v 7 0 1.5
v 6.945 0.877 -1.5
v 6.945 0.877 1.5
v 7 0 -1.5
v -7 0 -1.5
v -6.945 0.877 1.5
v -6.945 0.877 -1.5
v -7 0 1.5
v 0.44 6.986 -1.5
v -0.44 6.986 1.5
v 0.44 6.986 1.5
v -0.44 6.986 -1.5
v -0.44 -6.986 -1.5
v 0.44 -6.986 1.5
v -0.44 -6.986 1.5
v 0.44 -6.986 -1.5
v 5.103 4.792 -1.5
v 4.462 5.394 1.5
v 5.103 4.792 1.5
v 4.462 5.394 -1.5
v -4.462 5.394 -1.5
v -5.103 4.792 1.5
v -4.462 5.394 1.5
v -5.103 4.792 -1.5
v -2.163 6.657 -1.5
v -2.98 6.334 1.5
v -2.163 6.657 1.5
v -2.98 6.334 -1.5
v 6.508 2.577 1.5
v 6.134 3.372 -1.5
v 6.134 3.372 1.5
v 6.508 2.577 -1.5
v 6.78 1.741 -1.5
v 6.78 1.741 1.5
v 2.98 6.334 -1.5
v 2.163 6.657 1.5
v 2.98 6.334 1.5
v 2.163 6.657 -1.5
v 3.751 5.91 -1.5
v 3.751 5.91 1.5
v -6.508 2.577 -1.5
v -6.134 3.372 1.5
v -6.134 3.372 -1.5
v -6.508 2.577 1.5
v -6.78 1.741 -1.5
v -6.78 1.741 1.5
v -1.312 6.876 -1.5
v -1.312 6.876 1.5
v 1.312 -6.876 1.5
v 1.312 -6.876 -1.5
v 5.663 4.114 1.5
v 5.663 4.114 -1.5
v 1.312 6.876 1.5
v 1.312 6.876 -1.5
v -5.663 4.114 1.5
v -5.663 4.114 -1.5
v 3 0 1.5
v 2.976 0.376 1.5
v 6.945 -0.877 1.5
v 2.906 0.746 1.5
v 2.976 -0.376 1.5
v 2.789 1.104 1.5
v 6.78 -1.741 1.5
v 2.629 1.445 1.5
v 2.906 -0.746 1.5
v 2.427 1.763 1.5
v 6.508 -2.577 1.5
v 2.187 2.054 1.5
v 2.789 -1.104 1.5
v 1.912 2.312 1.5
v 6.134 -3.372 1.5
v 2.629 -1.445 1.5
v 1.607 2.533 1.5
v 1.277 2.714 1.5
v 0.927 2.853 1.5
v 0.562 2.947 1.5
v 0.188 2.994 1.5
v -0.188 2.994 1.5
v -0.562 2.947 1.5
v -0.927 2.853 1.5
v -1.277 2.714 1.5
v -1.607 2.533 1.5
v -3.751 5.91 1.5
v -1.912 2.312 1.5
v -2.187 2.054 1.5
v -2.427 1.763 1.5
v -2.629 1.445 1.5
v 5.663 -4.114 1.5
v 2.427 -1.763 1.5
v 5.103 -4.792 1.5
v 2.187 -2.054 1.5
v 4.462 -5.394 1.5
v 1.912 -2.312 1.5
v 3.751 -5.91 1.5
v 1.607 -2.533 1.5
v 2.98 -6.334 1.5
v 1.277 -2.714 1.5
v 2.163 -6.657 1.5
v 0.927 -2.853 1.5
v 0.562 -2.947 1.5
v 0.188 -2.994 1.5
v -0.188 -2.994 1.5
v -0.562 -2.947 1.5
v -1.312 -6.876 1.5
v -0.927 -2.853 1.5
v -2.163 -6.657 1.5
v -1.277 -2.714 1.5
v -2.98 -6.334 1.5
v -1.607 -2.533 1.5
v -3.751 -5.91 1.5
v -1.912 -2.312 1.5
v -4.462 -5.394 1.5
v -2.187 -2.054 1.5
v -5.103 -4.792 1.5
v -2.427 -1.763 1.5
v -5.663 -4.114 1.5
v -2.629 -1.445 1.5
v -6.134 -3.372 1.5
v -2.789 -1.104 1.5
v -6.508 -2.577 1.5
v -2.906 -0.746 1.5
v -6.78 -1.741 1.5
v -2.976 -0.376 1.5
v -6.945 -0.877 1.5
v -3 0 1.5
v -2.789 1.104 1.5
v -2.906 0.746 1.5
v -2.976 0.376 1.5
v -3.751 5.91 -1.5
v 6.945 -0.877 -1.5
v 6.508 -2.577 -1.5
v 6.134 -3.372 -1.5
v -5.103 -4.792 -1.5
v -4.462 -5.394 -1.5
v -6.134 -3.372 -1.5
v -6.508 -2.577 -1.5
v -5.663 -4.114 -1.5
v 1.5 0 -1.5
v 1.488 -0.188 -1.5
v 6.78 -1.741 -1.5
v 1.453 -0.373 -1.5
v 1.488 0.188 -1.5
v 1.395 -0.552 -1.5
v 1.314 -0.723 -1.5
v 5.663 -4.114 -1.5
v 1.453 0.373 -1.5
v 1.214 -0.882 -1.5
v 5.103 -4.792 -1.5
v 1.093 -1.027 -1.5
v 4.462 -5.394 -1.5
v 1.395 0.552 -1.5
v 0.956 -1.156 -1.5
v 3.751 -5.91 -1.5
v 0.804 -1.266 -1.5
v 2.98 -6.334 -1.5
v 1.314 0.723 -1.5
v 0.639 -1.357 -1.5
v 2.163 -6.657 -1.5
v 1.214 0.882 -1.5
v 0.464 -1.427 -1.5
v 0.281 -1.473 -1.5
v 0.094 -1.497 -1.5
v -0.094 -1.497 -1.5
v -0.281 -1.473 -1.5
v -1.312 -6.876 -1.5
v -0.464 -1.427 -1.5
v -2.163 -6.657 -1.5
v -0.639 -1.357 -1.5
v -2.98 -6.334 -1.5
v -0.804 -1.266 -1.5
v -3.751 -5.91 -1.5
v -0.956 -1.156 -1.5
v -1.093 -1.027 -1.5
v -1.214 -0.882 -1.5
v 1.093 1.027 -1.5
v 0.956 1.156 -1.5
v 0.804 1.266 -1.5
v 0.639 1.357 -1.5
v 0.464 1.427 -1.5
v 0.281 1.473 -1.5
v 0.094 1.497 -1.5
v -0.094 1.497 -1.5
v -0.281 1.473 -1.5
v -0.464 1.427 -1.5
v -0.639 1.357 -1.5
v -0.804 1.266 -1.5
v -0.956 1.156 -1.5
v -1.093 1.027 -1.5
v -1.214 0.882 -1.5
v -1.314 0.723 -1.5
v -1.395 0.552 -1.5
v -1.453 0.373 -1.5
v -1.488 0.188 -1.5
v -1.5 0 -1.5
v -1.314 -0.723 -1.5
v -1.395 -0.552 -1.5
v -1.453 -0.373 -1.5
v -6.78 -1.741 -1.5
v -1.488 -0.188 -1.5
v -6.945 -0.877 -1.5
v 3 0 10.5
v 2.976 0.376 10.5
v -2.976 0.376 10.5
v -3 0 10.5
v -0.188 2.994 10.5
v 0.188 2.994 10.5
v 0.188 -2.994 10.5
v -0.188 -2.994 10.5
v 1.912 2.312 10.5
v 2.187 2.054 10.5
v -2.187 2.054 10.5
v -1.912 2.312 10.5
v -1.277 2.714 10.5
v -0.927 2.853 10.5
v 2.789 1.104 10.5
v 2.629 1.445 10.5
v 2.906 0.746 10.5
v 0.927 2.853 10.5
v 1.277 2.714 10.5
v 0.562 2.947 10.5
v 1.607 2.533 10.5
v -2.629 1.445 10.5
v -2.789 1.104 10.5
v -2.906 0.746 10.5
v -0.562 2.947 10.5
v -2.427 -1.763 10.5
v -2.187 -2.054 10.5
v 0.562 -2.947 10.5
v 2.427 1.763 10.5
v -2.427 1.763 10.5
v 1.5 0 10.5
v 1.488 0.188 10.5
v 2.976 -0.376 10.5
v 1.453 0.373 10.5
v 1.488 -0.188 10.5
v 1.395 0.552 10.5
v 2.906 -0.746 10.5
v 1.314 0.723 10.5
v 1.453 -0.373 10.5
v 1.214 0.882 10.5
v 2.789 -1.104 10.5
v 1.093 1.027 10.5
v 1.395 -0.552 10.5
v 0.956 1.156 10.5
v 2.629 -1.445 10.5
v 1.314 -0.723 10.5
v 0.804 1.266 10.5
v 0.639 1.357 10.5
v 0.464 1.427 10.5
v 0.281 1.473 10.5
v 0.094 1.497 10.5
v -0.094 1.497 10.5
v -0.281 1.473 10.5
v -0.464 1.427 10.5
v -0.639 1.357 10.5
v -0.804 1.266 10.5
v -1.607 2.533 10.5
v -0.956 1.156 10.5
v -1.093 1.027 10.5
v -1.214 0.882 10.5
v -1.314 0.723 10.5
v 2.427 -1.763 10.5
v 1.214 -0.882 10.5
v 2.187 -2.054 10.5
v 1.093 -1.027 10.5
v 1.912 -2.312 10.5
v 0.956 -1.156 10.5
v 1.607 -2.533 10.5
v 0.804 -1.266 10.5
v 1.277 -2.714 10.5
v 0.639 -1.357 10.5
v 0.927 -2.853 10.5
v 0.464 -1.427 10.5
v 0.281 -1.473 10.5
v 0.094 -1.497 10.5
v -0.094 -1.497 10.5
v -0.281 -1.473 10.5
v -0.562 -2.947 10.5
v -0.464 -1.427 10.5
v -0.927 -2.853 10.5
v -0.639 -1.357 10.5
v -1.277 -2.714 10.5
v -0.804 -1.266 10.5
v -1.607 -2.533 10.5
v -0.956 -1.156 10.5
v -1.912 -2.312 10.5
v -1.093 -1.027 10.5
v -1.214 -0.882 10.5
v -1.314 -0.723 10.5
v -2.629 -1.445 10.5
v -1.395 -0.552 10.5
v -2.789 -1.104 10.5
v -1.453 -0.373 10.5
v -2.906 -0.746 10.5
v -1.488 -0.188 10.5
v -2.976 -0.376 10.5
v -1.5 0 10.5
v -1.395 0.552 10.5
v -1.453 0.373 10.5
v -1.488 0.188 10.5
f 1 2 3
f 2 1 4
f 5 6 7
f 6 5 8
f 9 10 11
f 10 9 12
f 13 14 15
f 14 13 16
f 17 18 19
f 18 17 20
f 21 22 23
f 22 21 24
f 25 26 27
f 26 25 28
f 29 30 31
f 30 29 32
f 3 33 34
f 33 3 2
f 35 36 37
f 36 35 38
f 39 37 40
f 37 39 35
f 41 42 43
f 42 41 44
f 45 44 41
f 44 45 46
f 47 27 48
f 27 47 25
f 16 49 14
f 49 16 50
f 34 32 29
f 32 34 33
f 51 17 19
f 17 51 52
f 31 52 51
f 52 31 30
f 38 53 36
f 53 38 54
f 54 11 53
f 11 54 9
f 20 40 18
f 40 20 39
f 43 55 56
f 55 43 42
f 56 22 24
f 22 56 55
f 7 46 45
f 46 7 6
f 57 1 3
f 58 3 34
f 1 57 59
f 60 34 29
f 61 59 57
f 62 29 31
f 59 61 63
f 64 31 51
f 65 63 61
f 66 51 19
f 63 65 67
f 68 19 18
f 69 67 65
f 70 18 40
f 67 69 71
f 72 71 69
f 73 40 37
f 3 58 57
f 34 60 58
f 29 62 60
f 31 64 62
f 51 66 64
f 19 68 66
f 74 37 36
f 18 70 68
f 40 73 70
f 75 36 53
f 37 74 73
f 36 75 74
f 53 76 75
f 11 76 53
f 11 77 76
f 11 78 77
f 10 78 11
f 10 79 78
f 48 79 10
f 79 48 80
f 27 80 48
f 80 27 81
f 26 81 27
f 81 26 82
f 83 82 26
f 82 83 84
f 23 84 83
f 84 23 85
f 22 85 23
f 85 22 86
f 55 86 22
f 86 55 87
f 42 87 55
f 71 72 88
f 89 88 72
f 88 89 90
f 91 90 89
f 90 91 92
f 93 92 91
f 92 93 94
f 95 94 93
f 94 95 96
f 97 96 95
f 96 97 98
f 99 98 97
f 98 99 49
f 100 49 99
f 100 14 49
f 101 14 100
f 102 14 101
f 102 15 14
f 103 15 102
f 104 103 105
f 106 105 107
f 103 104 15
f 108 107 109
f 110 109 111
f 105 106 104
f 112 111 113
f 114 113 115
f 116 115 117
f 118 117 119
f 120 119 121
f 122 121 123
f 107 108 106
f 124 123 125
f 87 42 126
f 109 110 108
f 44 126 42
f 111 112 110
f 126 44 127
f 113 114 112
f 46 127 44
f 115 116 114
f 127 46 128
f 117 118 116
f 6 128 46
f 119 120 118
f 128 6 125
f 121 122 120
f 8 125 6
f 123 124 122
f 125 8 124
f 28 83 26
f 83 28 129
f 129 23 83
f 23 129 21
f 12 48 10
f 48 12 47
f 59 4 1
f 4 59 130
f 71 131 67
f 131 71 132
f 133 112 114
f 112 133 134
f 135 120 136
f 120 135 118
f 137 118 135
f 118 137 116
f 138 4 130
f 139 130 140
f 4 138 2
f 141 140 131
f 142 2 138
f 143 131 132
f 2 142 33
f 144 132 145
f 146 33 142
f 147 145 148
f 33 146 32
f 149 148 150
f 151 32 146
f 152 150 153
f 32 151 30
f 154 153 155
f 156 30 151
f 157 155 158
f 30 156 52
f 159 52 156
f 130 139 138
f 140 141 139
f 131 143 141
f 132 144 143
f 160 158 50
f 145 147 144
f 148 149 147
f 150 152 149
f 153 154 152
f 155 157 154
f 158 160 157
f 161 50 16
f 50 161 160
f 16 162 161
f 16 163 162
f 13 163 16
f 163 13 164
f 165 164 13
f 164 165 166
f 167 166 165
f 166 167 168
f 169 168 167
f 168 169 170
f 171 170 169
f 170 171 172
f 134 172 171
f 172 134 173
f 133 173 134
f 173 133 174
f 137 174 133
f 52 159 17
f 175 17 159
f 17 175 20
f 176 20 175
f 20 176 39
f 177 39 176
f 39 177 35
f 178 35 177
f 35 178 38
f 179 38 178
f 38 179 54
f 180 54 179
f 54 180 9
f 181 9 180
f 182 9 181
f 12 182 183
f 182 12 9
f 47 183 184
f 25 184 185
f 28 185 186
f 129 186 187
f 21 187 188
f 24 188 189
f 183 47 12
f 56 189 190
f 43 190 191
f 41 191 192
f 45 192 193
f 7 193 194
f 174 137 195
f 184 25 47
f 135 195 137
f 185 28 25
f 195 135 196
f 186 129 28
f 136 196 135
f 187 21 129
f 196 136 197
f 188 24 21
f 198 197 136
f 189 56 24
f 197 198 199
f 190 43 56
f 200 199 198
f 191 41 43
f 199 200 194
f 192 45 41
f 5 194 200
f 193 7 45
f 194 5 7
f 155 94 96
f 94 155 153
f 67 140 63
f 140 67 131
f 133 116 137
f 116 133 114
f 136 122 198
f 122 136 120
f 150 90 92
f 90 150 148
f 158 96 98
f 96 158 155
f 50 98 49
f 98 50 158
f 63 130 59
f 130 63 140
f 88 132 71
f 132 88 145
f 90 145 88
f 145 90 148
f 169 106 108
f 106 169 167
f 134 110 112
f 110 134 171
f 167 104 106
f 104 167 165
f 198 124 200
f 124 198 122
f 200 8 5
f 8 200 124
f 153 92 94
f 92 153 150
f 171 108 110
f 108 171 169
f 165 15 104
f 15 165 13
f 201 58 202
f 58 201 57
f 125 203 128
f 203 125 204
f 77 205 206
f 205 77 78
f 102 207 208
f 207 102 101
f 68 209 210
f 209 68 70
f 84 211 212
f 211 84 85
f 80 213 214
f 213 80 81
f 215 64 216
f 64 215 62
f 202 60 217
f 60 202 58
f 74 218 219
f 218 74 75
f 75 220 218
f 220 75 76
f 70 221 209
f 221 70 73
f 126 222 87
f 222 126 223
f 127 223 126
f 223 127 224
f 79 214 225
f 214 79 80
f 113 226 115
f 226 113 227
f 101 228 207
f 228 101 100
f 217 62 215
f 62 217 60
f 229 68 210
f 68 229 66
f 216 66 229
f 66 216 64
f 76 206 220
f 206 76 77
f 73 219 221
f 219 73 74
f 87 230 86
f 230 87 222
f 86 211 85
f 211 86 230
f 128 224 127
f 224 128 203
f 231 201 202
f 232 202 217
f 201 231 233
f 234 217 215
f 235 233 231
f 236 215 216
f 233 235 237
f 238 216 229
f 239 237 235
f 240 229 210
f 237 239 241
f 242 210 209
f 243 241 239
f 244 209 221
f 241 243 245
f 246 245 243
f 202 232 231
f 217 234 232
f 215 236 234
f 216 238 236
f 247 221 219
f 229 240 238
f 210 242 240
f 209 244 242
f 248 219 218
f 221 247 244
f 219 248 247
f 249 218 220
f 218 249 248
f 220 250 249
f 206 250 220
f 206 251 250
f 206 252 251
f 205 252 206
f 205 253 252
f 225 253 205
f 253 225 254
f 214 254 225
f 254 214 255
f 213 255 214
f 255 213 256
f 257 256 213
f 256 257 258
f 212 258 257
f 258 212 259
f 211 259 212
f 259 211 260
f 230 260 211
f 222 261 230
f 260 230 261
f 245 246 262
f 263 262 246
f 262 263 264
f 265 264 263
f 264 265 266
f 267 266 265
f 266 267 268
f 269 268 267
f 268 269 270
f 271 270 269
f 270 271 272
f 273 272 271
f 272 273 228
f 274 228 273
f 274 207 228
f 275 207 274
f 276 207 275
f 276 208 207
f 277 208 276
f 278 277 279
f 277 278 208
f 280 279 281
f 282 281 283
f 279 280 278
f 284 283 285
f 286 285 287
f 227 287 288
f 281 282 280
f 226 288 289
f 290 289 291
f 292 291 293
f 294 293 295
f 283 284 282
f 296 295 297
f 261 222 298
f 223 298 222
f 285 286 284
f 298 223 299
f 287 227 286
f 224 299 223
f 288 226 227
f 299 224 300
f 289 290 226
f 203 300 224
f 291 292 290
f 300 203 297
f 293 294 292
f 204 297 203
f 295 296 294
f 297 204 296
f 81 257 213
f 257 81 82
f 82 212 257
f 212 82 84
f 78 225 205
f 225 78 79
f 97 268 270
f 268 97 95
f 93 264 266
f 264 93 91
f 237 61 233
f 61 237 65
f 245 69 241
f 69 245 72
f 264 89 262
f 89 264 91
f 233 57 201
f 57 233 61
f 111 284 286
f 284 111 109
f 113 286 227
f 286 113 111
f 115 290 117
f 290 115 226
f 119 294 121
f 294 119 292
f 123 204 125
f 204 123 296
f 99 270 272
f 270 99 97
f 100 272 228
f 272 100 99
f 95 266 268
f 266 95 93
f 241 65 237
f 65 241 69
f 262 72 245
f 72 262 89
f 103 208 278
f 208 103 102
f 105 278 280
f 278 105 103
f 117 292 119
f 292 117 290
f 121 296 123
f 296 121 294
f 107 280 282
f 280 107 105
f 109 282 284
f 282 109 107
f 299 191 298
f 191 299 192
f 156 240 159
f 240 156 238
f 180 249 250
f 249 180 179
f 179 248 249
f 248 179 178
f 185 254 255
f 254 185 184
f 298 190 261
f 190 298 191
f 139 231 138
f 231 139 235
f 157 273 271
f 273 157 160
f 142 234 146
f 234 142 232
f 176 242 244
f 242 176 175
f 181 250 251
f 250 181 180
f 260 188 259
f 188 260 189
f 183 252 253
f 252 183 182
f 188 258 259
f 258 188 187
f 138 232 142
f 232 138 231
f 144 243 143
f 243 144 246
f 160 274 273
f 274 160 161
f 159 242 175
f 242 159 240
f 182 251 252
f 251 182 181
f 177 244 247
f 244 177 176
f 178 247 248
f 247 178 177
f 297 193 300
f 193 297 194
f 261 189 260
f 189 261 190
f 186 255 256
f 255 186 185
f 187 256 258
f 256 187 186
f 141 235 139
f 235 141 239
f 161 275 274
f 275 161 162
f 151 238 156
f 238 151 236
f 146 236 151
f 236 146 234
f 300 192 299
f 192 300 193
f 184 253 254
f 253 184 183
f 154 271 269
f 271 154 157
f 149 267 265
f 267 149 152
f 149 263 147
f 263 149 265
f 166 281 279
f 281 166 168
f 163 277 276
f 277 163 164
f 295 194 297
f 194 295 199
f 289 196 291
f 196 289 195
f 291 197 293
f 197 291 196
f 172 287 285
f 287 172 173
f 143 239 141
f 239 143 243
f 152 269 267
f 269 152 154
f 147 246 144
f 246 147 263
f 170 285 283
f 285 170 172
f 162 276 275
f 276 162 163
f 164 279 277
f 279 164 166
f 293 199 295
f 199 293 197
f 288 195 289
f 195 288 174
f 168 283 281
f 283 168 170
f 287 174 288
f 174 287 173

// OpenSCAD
$fn = 50;


difference() {
	union() {
		translate(v = [0, 0, -1.5000000000]) {
			rotate(a = [0, 0, 0]) {
				cylinder(h = 3, r = 7.0000000000);
			}
		}
		translate(v = [0, 0, -1.5000000000]) {
			rotate(a = [0, 0, 0]) {
				cylinder(h = 12, r = 3.0000000000);
			}
		}
	}
	union() {
		translate(v = [0, 0, -125.0000000000]) {
			rotate(a = [0, 0, 0]) {
				cylinder(h = 250, r = 1.5000000000);
			}
		}
	}
}
